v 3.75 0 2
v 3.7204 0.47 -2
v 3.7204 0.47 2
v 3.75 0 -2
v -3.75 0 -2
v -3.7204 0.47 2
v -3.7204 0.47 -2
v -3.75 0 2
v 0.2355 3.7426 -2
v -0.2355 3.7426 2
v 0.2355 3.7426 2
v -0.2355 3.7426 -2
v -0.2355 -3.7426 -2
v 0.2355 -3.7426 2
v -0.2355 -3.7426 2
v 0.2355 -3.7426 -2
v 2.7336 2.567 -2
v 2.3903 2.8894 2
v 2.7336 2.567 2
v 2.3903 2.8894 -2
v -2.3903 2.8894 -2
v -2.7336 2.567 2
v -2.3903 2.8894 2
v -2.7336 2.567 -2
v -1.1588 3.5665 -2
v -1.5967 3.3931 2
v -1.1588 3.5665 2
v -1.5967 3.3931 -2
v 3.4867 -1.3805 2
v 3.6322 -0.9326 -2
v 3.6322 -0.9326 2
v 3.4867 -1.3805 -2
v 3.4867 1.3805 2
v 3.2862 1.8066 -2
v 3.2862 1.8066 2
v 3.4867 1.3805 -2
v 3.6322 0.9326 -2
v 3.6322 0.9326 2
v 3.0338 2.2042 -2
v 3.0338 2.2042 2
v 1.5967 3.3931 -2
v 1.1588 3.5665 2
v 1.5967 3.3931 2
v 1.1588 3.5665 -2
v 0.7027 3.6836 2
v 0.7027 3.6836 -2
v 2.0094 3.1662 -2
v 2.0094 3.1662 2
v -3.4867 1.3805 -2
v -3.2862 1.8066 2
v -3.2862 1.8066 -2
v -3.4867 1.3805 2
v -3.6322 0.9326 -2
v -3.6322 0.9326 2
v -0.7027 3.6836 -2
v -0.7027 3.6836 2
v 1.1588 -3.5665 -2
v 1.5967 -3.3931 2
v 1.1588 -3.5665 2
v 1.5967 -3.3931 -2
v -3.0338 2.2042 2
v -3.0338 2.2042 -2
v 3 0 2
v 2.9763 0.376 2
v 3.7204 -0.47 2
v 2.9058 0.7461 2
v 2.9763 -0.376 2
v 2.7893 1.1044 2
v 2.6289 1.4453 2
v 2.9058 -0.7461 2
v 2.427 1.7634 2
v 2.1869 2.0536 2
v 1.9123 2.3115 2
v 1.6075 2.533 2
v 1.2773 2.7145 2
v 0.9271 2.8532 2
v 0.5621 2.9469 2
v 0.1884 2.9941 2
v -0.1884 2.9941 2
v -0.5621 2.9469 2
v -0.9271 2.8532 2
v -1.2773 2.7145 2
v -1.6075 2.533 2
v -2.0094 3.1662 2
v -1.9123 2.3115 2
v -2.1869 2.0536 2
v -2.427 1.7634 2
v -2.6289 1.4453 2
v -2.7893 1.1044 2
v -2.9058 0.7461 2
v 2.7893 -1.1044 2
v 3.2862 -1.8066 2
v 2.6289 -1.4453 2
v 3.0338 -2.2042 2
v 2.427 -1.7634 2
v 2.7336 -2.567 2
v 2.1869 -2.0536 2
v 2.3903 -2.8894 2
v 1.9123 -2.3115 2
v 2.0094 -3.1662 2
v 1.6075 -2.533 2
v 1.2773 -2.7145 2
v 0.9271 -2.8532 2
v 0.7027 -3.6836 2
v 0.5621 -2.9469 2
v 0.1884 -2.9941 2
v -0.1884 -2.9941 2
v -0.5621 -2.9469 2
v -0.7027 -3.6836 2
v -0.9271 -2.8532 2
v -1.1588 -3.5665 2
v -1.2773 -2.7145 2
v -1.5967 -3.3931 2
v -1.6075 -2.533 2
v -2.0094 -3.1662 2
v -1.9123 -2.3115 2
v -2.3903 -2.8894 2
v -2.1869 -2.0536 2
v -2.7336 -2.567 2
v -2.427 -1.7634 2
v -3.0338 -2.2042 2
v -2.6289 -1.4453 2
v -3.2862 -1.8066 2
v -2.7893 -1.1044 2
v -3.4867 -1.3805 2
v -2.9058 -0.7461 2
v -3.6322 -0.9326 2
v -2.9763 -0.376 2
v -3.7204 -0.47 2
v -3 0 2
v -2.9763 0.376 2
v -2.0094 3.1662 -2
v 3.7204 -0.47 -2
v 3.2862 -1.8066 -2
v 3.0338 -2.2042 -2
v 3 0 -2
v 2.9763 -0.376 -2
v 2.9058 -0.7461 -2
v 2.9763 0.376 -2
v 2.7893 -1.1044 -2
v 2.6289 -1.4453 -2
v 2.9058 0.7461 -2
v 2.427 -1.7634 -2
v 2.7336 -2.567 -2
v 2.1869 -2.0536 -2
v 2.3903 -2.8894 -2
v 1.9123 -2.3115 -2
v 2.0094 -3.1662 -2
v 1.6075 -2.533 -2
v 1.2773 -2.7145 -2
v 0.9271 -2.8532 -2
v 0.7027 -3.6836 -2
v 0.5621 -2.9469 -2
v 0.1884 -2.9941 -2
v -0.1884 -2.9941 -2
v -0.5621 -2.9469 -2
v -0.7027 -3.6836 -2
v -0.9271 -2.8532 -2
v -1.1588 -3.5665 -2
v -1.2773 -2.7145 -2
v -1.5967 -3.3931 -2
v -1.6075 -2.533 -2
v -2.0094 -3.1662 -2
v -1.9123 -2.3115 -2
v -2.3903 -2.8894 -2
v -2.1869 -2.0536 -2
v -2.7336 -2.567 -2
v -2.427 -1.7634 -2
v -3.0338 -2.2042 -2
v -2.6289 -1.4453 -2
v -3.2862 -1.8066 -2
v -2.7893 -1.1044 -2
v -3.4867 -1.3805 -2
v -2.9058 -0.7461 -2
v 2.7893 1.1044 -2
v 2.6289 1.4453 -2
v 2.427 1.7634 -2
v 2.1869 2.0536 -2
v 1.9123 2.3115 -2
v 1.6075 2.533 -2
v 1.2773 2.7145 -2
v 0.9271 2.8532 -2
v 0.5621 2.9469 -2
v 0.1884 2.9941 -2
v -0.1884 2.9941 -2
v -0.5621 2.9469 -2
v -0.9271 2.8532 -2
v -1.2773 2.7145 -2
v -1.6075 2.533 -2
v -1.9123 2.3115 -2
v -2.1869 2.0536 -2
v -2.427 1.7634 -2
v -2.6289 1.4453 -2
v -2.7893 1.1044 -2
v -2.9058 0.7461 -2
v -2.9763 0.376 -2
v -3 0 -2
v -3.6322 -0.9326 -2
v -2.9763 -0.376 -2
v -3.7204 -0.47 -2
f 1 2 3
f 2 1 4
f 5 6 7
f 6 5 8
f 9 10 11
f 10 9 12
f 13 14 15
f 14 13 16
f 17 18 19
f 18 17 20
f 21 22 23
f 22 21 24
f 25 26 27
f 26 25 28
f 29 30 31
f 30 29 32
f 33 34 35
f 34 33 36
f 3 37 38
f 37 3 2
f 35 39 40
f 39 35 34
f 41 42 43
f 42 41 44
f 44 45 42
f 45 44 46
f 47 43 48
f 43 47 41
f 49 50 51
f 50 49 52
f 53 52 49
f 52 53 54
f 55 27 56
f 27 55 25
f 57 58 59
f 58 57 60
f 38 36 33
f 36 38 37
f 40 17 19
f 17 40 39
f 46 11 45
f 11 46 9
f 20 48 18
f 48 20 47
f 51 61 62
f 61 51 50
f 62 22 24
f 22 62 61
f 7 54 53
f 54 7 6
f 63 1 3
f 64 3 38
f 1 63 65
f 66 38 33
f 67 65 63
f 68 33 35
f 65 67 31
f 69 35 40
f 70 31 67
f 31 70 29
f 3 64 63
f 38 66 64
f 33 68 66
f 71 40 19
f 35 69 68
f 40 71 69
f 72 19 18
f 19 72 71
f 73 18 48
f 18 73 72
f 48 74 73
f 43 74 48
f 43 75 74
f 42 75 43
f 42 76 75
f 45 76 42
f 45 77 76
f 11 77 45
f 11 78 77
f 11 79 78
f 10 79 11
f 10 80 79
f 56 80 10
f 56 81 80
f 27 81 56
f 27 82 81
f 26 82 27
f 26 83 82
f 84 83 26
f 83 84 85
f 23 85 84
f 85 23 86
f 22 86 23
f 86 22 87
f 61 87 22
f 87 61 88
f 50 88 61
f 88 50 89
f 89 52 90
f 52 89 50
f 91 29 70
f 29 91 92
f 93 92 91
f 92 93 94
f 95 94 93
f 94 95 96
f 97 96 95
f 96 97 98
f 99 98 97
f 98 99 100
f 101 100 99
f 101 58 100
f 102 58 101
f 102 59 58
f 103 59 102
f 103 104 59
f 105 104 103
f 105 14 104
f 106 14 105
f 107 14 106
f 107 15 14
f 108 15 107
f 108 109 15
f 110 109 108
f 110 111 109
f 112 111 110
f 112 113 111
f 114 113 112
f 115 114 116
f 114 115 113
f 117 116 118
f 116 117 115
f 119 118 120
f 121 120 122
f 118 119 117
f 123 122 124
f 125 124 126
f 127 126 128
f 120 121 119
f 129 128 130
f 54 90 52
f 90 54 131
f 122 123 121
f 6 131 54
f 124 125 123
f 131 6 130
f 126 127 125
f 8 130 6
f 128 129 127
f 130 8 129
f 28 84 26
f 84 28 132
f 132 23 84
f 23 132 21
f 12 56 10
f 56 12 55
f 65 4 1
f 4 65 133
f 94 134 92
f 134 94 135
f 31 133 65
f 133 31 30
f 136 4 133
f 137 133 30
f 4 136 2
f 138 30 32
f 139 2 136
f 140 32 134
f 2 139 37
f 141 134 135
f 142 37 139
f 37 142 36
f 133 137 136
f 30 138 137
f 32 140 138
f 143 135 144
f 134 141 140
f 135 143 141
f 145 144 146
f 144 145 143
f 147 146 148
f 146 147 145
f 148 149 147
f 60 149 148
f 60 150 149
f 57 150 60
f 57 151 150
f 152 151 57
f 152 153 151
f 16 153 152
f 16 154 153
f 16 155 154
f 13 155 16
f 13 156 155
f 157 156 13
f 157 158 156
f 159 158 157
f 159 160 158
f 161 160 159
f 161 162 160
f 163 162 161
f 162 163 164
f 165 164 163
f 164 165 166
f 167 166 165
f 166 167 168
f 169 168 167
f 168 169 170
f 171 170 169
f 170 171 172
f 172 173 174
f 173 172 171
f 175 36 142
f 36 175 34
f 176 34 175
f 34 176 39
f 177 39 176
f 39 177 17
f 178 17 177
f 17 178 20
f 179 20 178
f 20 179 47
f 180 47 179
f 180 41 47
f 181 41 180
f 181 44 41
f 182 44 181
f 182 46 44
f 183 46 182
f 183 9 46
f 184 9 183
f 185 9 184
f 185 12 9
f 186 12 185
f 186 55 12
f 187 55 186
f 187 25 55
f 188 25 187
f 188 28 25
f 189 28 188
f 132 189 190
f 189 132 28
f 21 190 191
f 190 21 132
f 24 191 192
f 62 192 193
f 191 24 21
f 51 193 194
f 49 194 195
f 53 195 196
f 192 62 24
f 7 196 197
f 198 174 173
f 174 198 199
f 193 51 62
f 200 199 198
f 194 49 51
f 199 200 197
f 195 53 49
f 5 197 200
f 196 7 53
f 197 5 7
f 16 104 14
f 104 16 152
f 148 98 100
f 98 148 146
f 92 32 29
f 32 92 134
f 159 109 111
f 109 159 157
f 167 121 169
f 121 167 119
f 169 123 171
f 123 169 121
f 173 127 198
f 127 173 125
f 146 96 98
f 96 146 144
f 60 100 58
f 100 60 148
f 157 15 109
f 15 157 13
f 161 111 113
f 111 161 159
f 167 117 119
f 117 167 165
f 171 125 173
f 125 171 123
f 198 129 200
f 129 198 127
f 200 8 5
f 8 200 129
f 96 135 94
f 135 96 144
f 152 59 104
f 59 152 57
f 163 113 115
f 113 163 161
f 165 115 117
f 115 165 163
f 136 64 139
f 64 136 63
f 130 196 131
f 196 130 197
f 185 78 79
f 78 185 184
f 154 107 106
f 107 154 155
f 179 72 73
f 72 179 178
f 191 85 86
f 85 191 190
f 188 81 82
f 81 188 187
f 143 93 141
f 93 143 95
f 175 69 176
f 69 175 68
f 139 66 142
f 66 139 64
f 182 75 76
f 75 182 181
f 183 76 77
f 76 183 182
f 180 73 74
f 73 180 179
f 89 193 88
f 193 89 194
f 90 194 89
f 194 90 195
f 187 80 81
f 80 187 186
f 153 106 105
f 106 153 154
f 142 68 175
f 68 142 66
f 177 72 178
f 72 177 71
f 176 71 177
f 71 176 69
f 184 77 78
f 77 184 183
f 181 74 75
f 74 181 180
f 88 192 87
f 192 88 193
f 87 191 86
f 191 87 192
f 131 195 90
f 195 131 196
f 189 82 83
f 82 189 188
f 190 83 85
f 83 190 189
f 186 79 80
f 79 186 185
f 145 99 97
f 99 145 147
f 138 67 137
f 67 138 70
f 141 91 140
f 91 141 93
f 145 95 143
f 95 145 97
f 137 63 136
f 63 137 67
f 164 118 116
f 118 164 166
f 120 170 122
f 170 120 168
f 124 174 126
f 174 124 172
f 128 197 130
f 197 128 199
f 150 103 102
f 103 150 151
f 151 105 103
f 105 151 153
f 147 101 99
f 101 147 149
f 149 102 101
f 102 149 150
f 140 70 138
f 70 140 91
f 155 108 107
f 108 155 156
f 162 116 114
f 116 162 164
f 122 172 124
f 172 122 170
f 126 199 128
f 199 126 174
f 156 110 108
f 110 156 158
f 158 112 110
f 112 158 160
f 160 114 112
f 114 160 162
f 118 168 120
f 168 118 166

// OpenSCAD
$fn = 50;


difference() {
	union() {
		translate(v = [0, 0, -2.0000000000]) {
			cylinder(h = 4, r = 3.7500000000);
		}
	}
	union() {
		translate(v = [0, 0, -100.0000000000]) {
			cylinder(h = 200, r = 3.0000000000);
		}
	}
}
